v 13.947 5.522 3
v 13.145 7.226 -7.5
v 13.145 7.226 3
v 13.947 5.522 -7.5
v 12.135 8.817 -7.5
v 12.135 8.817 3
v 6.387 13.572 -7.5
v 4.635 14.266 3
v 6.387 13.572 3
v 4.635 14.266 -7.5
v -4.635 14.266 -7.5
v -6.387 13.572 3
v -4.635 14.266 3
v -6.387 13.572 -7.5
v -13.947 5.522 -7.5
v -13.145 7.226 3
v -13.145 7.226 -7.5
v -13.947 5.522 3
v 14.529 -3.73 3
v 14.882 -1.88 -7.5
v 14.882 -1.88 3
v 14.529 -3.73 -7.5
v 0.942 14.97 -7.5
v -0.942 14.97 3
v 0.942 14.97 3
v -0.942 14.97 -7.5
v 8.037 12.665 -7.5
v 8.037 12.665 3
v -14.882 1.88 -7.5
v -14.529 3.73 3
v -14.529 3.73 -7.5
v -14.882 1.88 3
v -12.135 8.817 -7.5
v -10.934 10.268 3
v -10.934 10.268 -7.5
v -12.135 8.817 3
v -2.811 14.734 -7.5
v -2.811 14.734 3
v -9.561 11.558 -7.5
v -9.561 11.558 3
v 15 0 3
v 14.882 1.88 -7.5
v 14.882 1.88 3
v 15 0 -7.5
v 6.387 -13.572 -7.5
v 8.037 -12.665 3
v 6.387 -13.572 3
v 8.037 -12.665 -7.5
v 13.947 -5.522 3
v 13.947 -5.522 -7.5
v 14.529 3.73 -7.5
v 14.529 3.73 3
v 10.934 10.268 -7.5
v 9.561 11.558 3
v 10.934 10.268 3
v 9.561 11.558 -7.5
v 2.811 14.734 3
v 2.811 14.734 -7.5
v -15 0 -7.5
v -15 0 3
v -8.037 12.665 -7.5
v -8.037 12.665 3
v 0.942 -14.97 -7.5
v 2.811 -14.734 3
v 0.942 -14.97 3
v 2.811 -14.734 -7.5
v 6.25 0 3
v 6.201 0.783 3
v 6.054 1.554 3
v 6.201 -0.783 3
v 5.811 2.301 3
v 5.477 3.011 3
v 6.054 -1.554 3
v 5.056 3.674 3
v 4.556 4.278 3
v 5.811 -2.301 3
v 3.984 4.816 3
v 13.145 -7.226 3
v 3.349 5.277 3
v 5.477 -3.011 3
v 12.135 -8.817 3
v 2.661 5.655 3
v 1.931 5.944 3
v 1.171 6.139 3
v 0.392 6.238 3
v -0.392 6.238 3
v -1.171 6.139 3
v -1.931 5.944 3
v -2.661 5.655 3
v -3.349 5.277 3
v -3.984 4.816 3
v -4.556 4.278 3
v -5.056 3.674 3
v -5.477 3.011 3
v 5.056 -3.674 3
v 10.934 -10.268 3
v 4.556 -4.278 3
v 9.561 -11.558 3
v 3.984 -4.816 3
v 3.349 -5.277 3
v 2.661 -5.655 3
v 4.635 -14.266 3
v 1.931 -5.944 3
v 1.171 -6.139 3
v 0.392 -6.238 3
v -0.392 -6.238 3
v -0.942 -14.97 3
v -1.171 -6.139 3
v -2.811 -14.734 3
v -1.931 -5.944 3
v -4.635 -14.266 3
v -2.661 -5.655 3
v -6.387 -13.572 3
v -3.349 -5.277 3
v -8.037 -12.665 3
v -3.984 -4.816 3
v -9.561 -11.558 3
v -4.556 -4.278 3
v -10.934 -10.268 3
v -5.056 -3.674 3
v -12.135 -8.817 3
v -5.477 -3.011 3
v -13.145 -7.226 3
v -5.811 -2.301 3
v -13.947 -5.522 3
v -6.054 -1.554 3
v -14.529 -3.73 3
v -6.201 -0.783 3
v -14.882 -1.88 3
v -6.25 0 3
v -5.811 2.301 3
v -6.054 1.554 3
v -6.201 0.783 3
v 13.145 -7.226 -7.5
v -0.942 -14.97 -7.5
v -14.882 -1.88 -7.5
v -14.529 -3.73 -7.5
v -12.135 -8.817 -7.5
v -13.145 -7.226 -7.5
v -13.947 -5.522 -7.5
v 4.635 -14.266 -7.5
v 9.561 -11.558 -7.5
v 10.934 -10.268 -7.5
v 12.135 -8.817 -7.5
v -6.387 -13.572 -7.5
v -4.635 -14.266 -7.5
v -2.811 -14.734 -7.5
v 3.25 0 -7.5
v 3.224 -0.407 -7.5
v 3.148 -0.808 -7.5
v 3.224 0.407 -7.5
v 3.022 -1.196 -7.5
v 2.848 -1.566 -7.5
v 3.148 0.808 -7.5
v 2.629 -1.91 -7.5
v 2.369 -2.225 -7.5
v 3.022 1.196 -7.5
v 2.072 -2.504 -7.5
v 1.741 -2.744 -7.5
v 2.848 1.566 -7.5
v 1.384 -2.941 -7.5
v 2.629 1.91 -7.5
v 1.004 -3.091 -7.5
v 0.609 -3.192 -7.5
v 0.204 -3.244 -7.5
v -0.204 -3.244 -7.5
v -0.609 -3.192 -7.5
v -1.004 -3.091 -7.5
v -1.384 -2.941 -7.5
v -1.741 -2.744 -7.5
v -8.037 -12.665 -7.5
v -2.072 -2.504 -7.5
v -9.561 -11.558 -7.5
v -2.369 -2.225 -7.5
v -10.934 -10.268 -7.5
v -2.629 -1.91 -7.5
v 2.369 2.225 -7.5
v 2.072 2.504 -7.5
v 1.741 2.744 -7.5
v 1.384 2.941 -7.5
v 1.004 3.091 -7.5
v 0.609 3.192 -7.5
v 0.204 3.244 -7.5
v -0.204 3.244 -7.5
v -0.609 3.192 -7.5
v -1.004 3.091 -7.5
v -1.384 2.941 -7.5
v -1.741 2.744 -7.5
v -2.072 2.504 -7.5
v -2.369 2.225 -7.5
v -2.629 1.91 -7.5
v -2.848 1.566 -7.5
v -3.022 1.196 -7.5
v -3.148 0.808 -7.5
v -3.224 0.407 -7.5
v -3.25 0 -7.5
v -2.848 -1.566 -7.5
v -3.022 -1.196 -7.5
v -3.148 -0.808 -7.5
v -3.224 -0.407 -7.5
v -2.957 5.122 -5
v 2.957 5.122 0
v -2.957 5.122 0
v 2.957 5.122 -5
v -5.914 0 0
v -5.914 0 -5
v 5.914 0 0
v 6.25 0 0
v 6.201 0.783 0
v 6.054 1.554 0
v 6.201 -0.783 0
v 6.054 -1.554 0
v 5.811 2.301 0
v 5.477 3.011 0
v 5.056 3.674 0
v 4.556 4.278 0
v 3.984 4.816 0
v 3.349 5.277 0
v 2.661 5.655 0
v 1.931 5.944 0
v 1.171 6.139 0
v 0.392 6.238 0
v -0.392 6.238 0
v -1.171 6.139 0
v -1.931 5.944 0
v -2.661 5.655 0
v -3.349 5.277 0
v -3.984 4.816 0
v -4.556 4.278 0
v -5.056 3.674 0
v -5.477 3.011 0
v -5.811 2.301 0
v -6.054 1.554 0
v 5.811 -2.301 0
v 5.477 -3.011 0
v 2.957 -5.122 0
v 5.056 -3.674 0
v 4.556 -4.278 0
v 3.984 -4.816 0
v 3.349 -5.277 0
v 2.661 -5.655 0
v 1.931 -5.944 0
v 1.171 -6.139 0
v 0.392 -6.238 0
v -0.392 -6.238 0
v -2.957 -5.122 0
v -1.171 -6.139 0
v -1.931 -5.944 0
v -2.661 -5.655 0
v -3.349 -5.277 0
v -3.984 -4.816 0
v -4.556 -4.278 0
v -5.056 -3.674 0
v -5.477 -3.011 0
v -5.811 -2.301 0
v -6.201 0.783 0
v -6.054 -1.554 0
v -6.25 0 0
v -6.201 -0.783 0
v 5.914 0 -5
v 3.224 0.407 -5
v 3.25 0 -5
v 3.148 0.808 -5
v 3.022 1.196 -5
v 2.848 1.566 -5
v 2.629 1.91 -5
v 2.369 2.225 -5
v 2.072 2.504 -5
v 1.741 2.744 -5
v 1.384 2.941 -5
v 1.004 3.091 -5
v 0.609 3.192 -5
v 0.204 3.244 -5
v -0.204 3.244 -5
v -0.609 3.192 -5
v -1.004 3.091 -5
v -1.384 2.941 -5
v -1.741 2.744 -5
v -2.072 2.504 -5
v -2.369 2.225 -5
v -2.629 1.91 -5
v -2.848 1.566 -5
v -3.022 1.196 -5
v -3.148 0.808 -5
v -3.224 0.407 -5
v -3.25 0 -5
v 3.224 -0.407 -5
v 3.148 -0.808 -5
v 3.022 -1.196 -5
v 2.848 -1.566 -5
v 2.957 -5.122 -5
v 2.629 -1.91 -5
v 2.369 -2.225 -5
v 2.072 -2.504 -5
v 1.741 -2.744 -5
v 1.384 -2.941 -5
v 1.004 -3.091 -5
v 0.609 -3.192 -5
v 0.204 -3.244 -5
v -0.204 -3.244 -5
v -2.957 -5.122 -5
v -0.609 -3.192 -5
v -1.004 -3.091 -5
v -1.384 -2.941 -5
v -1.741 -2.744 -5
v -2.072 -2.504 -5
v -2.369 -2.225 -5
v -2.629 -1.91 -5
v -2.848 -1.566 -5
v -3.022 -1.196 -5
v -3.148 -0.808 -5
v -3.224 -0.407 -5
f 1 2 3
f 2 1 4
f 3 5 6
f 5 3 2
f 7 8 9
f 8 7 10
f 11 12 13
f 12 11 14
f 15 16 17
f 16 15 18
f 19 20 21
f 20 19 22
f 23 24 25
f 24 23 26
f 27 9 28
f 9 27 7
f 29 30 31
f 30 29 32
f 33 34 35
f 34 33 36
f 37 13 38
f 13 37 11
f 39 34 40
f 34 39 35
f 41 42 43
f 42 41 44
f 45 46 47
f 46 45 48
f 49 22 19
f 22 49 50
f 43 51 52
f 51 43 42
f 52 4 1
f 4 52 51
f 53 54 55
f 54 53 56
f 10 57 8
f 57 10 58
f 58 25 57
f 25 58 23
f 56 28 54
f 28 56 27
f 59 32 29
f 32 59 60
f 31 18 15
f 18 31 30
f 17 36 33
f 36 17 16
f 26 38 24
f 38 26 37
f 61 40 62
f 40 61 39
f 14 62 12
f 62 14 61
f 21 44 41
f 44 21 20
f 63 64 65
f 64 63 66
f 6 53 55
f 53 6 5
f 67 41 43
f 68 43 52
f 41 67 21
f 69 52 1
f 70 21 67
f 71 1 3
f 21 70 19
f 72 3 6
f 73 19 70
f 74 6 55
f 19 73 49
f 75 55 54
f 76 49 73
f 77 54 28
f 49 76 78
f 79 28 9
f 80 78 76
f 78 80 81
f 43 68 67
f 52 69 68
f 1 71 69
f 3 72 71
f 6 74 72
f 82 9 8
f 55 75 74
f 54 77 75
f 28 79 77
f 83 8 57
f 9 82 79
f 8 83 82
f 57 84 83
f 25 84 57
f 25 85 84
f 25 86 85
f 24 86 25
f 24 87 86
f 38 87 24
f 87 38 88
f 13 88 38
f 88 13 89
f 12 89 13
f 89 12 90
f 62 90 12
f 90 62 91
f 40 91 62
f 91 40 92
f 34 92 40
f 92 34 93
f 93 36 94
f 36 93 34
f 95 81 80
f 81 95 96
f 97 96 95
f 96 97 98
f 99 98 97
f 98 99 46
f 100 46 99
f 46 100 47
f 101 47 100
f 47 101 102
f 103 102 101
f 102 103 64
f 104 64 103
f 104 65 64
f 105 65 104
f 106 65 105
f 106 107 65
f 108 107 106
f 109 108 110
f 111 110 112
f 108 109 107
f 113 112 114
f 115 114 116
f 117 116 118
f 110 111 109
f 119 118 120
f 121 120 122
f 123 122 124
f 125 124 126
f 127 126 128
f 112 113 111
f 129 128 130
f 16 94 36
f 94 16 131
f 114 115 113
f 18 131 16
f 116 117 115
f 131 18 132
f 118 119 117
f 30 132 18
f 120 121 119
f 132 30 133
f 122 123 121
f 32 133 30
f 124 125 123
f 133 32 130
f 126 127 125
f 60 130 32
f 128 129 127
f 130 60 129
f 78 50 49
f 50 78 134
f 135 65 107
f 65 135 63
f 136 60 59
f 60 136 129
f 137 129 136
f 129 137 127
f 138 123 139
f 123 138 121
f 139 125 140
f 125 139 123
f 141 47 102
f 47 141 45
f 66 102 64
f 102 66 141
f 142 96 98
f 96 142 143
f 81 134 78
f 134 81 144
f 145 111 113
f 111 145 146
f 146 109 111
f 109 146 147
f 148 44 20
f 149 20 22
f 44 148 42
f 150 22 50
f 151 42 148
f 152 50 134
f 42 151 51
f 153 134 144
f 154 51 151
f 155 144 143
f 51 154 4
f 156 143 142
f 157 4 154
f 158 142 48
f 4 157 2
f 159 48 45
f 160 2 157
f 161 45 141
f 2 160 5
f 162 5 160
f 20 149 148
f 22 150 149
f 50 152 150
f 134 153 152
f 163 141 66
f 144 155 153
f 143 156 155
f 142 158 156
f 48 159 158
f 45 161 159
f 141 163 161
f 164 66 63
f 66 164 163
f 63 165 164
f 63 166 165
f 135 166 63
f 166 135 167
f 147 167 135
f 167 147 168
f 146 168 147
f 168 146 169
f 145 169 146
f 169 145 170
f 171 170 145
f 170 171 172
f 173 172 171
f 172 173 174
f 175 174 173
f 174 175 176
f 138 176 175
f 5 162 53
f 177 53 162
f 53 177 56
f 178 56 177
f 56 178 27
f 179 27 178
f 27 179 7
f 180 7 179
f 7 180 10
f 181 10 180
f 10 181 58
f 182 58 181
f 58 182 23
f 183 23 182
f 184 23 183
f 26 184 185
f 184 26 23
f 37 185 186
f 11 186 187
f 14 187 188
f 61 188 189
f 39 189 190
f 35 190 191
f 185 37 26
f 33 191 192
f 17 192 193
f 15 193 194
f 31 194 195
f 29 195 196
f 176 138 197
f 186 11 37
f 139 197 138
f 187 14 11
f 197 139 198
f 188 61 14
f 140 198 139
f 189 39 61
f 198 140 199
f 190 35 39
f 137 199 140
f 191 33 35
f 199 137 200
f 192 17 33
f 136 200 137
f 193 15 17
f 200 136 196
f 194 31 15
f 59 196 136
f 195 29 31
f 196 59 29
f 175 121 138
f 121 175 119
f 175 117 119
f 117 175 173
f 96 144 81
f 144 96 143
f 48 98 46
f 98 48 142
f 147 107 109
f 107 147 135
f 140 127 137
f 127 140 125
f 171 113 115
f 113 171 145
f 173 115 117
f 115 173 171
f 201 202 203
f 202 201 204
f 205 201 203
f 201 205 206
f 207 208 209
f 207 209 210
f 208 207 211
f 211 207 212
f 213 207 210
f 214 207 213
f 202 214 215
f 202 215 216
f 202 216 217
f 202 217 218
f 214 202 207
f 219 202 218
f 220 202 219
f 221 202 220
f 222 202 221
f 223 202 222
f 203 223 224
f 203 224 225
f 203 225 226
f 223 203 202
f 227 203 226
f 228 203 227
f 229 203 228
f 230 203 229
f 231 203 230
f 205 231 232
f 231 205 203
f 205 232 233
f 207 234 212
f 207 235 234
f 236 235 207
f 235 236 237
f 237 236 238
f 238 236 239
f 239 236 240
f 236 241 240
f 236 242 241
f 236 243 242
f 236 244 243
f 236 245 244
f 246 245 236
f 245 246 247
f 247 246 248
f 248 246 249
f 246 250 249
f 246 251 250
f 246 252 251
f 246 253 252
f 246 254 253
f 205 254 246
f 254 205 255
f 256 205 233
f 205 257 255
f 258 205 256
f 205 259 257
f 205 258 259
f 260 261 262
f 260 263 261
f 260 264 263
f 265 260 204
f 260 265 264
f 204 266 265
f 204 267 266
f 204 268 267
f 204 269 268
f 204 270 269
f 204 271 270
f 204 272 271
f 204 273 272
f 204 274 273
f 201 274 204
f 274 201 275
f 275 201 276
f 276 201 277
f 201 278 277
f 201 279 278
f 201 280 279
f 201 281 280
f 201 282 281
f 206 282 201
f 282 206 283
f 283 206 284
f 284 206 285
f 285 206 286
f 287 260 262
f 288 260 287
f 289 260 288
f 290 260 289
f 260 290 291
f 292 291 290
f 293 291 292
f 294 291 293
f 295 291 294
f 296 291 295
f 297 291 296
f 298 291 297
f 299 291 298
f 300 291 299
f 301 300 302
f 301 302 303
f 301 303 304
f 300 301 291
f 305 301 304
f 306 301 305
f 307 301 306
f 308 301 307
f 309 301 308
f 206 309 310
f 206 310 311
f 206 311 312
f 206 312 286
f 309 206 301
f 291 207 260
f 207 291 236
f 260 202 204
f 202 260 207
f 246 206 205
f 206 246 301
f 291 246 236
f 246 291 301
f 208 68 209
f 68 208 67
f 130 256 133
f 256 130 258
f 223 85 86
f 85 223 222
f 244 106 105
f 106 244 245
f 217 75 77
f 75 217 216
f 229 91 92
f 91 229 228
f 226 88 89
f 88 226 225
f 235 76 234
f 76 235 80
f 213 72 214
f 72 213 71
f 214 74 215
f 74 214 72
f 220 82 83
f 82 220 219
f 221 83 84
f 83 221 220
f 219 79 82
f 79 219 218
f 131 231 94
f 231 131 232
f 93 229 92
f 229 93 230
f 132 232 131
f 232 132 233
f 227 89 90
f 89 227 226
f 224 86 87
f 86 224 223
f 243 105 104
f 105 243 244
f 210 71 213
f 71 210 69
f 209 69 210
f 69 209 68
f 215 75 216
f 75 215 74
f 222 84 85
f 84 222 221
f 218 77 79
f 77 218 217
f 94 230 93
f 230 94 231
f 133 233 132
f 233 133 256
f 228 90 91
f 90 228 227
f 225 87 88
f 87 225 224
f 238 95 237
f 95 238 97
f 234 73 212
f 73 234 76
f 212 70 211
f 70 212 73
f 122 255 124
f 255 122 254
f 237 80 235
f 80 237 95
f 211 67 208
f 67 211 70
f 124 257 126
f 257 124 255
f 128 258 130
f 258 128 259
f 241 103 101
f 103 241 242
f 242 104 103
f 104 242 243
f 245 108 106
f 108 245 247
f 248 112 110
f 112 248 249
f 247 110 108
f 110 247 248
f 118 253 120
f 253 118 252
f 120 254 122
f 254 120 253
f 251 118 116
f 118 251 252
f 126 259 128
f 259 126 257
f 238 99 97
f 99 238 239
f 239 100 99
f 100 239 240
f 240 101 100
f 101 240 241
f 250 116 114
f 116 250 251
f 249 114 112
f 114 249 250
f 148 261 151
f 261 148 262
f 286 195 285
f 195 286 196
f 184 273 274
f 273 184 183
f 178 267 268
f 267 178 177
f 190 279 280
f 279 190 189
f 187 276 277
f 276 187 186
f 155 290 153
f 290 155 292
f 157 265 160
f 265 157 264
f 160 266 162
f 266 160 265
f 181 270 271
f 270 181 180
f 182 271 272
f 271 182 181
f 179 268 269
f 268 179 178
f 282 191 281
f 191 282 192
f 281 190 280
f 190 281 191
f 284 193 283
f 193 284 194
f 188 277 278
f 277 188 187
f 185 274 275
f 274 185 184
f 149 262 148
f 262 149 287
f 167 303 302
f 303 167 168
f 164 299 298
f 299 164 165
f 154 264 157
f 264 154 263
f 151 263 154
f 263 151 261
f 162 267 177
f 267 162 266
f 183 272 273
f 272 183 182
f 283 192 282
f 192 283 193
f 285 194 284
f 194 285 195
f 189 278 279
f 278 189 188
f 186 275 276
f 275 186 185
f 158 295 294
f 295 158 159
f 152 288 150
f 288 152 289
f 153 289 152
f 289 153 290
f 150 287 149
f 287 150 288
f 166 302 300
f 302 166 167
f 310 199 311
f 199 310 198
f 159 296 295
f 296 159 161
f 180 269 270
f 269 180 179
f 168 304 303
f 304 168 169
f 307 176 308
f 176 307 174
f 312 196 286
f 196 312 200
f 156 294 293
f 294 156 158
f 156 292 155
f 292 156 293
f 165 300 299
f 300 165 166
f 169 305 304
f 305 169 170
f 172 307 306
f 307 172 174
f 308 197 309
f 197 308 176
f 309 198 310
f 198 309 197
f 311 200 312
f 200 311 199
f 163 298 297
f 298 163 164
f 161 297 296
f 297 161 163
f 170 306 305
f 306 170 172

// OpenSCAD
$fn = 50;


difference() {
	union() {
		translate(v = [0, 0, -7.5000000000]) {
			cylinder(h = 10.5000000000, r = 15.0000000000);
		}
		#translate(v = [0, 0, -9.0000000000]) {
			cylinder(h = 9, r = 2.8750000000);
		}
	}
	union() {
		translate(v = [0, 0, 0]) {
			rotate(a = [0, 0, 0]) {
				difference() {
					union() {
						translate(v = [0, 0, -5]) {
							linear_extrude(height = 5) {
								polygon(points = [[5.9142500000, 0.0000000000], [2.9571250000, 5.1218907443], [-2.9571250000, 5.1218907443], [-5.9142500000, 0.0000000000], [-2.9571250000, -5.1218907443], [2.9571250000, -5.1218907443]]);
							}
						}
					}
					union();
				}
			}
		}
		#cylinder(h = 3, r = 6.2500000000);
		#translate(v = [0, 0, -100.0000000000]) {
			cylinder(h = 200, r = 3.2500000000);
		}
	}
}
